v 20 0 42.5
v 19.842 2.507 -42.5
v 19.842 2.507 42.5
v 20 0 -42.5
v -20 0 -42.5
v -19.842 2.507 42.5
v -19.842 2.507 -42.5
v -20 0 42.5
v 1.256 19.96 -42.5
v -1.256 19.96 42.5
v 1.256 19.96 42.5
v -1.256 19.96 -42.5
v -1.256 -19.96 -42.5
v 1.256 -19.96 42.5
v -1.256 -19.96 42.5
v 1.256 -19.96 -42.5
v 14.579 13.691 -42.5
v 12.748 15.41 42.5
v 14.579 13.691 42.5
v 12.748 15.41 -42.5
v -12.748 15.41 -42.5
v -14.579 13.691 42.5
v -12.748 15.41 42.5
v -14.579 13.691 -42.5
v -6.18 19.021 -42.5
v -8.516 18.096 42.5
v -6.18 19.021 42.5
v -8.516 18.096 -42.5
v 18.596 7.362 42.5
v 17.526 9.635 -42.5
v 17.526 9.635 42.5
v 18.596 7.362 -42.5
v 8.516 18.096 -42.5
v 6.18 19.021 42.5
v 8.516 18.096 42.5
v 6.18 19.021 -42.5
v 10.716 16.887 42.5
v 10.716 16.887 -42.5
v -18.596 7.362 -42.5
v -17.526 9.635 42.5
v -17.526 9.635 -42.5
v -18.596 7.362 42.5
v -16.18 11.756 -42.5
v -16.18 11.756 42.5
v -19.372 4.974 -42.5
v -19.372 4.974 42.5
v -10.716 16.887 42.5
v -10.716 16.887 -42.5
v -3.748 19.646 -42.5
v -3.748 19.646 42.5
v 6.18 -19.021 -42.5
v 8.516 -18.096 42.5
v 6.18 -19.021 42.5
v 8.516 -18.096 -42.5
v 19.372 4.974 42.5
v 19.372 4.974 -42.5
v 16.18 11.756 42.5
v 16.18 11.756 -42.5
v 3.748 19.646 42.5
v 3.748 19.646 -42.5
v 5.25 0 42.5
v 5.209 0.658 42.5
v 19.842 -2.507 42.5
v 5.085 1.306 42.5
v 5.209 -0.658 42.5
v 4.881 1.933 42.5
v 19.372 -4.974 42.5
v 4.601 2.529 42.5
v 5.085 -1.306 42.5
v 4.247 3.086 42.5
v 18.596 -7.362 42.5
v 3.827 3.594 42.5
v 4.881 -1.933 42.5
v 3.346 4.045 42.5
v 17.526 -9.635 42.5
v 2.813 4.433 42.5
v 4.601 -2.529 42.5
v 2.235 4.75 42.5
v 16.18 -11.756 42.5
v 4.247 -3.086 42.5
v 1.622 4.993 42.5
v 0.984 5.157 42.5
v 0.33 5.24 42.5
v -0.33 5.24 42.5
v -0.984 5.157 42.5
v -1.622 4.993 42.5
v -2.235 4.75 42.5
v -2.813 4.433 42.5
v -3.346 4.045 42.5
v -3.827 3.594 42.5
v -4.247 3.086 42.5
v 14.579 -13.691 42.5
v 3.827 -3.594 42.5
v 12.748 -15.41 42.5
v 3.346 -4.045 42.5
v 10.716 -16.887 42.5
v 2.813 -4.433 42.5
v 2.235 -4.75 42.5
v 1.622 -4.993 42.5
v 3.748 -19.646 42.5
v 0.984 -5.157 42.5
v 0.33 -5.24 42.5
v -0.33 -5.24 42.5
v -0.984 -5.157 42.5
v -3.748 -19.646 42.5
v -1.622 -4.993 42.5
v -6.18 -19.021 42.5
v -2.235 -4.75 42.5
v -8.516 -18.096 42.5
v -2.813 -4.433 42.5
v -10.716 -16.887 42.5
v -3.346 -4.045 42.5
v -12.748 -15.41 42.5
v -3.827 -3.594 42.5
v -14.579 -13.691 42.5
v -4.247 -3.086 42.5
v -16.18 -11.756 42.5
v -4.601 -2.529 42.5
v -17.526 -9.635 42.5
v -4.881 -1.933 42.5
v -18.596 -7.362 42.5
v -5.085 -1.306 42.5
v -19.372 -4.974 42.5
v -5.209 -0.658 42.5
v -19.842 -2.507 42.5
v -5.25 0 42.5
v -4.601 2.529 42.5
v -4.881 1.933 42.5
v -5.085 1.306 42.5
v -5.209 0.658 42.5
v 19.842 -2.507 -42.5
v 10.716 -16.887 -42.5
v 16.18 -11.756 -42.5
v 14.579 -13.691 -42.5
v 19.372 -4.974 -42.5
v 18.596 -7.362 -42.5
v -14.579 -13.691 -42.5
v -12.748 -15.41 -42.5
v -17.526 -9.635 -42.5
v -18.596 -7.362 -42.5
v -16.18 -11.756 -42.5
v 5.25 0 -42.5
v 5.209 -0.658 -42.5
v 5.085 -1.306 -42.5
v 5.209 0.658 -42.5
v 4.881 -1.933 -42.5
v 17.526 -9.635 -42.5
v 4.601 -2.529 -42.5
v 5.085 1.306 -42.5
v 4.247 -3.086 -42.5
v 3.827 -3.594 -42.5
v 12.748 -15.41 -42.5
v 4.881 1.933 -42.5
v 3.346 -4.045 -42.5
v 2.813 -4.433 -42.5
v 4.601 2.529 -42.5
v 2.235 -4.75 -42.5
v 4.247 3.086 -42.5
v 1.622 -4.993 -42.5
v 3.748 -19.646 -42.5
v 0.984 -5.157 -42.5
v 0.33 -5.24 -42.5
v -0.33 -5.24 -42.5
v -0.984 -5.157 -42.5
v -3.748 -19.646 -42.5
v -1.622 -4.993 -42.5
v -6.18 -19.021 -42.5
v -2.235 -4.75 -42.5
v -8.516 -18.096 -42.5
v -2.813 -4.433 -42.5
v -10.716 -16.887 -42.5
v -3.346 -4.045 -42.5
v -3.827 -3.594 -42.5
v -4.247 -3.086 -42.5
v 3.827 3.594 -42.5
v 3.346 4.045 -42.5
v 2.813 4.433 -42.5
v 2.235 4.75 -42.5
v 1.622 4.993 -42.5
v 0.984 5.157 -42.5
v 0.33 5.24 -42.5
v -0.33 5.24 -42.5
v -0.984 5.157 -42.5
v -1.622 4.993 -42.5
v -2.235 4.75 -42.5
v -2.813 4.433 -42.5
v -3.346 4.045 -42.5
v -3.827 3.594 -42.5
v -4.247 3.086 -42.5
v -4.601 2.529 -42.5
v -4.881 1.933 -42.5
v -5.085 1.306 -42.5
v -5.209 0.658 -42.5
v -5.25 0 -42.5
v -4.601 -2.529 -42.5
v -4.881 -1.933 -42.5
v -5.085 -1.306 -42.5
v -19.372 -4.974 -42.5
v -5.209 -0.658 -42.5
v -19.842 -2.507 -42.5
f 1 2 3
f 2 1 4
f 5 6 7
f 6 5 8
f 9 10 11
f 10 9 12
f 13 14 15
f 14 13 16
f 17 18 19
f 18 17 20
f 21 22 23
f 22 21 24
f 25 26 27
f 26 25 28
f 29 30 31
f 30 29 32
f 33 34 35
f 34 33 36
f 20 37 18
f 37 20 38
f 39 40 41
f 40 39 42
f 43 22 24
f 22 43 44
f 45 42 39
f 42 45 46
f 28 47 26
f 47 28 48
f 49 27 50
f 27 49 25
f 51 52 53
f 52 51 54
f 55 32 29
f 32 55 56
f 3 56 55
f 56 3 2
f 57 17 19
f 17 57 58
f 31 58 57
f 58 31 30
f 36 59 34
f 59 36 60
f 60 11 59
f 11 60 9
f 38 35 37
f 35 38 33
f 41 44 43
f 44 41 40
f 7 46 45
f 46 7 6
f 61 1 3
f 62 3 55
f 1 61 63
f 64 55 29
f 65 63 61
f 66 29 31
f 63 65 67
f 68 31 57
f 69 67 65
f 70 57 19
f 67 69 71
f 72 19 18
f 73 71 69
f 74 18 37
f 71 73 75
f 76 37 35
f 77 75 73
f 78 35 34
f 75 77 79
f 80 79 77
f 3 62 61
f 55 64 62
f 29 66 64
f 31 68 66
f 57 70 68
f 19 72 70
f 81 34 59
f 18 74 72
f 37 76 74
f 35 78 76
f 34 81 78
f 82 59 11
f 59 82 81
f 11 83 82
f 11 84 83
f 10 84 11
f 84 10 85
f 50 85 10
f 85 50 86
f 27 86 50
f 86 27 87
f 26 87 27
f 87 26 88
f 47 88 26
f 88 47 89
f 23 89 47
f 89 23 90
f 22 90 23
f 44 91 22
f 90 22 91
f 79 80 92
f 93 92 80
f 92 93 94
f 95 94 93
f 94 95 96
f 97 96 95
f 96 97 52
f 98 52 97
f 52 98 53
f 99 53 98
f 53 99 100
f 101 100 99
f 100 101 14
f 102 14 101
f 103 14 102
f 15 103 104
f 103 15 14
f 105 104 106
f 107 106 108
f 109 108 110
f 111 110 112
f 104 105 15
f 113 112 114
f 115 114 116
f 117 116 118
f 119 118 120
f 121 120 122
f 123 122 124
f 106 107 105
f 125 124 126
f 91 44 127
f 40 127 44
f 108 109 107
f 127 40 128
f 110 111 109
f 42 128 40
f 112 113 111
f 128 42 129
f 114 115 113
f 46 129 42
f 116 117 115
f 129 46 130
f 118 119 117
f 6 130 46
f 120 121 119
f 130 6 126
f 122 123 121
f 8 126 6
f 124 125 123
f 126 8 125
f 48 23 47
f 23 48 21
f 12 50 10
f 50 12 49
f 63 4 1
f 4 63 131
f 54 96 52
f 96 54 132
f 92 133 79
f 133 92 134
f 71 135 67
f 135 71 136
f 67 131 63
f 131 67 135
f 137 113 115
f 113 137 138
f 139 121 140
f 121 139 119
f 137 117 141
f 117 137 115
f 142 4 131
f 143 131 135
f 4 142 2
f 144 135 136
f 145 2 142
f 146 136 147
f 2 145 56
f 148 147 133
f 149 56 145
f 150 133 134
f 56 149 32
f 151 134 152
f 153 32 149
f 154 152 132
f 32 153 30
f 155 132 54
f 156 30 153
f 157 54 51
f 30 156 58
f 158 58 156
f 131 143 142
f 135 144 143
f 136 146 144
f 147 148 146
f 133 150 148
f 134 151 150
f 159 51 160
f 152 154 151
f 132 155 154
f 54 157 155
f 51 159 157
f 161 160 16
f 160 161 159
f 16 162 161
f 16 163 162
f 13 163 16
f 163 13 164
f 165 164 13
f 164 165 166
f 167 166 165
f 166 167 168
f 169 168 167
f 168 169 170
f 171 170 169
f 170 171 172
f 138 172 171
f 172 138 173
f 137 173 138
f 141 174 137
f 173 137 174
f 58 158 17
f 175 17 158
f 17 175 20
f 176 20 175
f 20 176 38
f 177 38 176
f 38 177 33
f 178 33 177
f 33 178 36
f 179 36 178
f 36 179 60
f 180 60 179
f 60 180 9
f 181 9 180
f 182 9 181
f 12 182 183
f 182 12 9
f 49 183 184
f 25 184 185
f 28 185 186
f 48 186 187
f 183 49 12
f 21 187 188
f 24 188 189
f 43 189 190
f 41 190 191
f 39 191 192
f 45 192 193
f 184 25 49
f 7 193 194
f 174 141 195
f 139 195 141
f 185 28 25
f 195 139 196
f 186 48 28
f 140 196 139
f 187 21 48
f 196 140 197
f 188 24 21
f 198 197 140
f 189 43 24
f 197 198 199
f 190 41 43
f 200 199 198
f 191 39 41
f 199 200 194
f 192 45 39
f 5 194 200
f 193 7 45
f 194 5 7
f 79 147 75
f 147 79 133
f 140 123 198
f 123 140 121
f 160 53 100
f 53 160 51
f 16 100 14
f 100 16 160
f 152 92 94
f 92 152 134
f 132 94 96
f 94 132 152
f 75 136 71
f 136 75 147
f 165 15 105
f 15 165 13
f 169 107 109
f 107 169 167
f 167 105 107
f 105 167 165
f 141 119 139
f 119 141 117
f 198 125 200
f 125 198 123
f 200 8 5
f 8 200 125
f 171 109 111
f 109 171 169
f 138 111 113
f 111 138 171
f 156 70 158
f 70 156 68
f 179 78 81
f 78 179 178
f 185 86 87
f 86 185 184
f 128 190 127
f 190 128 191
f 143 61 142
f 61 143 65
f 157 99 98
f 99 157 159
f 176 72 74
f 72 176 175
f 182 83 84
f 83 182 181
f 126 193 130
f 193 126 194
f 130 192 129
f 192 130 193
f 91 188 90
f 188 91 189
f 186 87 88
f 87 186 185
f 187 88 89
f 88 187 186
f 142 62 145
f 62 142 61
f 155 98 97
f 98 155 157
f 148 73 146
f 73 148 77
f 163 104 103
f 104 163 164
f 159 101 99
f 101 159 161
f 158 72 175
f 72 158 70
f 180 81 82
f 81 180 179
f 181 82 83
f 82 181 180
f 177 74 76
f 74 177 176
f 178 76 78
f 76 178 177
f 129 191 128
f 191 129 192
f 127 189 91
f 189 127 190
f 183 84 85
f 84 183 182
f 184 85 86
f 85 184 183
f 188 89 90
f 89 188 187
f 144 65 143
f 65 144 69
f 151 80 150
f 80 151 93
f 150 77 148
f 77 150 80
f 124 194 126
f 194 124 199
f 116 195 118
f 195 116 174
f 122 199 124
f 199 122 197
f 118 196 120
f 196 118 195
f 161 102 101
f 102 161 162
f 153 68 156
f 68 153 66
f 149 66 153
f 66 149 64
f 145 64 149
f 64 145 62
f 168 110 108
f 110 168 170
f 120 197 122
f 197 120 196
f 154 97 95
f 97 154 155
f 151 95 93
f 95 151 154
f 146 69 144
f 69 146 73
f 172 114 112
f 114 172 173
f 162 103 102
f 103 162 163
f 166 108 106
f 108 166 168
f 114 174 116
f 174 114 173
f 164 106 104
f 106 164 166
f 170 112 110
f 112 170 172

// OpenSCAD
$fn = 50;


difference() {
	union() {
		translate(v = [0, 0, -42.5000000000]) {
			cylinder(h = 85, r = 20.0000000000);
		}
	}
	union() {
		translate(v = [0, 0, -100.0000000000]) {
			cylinder(h = 200, r = 5.2500000000);
		}
	}
}
